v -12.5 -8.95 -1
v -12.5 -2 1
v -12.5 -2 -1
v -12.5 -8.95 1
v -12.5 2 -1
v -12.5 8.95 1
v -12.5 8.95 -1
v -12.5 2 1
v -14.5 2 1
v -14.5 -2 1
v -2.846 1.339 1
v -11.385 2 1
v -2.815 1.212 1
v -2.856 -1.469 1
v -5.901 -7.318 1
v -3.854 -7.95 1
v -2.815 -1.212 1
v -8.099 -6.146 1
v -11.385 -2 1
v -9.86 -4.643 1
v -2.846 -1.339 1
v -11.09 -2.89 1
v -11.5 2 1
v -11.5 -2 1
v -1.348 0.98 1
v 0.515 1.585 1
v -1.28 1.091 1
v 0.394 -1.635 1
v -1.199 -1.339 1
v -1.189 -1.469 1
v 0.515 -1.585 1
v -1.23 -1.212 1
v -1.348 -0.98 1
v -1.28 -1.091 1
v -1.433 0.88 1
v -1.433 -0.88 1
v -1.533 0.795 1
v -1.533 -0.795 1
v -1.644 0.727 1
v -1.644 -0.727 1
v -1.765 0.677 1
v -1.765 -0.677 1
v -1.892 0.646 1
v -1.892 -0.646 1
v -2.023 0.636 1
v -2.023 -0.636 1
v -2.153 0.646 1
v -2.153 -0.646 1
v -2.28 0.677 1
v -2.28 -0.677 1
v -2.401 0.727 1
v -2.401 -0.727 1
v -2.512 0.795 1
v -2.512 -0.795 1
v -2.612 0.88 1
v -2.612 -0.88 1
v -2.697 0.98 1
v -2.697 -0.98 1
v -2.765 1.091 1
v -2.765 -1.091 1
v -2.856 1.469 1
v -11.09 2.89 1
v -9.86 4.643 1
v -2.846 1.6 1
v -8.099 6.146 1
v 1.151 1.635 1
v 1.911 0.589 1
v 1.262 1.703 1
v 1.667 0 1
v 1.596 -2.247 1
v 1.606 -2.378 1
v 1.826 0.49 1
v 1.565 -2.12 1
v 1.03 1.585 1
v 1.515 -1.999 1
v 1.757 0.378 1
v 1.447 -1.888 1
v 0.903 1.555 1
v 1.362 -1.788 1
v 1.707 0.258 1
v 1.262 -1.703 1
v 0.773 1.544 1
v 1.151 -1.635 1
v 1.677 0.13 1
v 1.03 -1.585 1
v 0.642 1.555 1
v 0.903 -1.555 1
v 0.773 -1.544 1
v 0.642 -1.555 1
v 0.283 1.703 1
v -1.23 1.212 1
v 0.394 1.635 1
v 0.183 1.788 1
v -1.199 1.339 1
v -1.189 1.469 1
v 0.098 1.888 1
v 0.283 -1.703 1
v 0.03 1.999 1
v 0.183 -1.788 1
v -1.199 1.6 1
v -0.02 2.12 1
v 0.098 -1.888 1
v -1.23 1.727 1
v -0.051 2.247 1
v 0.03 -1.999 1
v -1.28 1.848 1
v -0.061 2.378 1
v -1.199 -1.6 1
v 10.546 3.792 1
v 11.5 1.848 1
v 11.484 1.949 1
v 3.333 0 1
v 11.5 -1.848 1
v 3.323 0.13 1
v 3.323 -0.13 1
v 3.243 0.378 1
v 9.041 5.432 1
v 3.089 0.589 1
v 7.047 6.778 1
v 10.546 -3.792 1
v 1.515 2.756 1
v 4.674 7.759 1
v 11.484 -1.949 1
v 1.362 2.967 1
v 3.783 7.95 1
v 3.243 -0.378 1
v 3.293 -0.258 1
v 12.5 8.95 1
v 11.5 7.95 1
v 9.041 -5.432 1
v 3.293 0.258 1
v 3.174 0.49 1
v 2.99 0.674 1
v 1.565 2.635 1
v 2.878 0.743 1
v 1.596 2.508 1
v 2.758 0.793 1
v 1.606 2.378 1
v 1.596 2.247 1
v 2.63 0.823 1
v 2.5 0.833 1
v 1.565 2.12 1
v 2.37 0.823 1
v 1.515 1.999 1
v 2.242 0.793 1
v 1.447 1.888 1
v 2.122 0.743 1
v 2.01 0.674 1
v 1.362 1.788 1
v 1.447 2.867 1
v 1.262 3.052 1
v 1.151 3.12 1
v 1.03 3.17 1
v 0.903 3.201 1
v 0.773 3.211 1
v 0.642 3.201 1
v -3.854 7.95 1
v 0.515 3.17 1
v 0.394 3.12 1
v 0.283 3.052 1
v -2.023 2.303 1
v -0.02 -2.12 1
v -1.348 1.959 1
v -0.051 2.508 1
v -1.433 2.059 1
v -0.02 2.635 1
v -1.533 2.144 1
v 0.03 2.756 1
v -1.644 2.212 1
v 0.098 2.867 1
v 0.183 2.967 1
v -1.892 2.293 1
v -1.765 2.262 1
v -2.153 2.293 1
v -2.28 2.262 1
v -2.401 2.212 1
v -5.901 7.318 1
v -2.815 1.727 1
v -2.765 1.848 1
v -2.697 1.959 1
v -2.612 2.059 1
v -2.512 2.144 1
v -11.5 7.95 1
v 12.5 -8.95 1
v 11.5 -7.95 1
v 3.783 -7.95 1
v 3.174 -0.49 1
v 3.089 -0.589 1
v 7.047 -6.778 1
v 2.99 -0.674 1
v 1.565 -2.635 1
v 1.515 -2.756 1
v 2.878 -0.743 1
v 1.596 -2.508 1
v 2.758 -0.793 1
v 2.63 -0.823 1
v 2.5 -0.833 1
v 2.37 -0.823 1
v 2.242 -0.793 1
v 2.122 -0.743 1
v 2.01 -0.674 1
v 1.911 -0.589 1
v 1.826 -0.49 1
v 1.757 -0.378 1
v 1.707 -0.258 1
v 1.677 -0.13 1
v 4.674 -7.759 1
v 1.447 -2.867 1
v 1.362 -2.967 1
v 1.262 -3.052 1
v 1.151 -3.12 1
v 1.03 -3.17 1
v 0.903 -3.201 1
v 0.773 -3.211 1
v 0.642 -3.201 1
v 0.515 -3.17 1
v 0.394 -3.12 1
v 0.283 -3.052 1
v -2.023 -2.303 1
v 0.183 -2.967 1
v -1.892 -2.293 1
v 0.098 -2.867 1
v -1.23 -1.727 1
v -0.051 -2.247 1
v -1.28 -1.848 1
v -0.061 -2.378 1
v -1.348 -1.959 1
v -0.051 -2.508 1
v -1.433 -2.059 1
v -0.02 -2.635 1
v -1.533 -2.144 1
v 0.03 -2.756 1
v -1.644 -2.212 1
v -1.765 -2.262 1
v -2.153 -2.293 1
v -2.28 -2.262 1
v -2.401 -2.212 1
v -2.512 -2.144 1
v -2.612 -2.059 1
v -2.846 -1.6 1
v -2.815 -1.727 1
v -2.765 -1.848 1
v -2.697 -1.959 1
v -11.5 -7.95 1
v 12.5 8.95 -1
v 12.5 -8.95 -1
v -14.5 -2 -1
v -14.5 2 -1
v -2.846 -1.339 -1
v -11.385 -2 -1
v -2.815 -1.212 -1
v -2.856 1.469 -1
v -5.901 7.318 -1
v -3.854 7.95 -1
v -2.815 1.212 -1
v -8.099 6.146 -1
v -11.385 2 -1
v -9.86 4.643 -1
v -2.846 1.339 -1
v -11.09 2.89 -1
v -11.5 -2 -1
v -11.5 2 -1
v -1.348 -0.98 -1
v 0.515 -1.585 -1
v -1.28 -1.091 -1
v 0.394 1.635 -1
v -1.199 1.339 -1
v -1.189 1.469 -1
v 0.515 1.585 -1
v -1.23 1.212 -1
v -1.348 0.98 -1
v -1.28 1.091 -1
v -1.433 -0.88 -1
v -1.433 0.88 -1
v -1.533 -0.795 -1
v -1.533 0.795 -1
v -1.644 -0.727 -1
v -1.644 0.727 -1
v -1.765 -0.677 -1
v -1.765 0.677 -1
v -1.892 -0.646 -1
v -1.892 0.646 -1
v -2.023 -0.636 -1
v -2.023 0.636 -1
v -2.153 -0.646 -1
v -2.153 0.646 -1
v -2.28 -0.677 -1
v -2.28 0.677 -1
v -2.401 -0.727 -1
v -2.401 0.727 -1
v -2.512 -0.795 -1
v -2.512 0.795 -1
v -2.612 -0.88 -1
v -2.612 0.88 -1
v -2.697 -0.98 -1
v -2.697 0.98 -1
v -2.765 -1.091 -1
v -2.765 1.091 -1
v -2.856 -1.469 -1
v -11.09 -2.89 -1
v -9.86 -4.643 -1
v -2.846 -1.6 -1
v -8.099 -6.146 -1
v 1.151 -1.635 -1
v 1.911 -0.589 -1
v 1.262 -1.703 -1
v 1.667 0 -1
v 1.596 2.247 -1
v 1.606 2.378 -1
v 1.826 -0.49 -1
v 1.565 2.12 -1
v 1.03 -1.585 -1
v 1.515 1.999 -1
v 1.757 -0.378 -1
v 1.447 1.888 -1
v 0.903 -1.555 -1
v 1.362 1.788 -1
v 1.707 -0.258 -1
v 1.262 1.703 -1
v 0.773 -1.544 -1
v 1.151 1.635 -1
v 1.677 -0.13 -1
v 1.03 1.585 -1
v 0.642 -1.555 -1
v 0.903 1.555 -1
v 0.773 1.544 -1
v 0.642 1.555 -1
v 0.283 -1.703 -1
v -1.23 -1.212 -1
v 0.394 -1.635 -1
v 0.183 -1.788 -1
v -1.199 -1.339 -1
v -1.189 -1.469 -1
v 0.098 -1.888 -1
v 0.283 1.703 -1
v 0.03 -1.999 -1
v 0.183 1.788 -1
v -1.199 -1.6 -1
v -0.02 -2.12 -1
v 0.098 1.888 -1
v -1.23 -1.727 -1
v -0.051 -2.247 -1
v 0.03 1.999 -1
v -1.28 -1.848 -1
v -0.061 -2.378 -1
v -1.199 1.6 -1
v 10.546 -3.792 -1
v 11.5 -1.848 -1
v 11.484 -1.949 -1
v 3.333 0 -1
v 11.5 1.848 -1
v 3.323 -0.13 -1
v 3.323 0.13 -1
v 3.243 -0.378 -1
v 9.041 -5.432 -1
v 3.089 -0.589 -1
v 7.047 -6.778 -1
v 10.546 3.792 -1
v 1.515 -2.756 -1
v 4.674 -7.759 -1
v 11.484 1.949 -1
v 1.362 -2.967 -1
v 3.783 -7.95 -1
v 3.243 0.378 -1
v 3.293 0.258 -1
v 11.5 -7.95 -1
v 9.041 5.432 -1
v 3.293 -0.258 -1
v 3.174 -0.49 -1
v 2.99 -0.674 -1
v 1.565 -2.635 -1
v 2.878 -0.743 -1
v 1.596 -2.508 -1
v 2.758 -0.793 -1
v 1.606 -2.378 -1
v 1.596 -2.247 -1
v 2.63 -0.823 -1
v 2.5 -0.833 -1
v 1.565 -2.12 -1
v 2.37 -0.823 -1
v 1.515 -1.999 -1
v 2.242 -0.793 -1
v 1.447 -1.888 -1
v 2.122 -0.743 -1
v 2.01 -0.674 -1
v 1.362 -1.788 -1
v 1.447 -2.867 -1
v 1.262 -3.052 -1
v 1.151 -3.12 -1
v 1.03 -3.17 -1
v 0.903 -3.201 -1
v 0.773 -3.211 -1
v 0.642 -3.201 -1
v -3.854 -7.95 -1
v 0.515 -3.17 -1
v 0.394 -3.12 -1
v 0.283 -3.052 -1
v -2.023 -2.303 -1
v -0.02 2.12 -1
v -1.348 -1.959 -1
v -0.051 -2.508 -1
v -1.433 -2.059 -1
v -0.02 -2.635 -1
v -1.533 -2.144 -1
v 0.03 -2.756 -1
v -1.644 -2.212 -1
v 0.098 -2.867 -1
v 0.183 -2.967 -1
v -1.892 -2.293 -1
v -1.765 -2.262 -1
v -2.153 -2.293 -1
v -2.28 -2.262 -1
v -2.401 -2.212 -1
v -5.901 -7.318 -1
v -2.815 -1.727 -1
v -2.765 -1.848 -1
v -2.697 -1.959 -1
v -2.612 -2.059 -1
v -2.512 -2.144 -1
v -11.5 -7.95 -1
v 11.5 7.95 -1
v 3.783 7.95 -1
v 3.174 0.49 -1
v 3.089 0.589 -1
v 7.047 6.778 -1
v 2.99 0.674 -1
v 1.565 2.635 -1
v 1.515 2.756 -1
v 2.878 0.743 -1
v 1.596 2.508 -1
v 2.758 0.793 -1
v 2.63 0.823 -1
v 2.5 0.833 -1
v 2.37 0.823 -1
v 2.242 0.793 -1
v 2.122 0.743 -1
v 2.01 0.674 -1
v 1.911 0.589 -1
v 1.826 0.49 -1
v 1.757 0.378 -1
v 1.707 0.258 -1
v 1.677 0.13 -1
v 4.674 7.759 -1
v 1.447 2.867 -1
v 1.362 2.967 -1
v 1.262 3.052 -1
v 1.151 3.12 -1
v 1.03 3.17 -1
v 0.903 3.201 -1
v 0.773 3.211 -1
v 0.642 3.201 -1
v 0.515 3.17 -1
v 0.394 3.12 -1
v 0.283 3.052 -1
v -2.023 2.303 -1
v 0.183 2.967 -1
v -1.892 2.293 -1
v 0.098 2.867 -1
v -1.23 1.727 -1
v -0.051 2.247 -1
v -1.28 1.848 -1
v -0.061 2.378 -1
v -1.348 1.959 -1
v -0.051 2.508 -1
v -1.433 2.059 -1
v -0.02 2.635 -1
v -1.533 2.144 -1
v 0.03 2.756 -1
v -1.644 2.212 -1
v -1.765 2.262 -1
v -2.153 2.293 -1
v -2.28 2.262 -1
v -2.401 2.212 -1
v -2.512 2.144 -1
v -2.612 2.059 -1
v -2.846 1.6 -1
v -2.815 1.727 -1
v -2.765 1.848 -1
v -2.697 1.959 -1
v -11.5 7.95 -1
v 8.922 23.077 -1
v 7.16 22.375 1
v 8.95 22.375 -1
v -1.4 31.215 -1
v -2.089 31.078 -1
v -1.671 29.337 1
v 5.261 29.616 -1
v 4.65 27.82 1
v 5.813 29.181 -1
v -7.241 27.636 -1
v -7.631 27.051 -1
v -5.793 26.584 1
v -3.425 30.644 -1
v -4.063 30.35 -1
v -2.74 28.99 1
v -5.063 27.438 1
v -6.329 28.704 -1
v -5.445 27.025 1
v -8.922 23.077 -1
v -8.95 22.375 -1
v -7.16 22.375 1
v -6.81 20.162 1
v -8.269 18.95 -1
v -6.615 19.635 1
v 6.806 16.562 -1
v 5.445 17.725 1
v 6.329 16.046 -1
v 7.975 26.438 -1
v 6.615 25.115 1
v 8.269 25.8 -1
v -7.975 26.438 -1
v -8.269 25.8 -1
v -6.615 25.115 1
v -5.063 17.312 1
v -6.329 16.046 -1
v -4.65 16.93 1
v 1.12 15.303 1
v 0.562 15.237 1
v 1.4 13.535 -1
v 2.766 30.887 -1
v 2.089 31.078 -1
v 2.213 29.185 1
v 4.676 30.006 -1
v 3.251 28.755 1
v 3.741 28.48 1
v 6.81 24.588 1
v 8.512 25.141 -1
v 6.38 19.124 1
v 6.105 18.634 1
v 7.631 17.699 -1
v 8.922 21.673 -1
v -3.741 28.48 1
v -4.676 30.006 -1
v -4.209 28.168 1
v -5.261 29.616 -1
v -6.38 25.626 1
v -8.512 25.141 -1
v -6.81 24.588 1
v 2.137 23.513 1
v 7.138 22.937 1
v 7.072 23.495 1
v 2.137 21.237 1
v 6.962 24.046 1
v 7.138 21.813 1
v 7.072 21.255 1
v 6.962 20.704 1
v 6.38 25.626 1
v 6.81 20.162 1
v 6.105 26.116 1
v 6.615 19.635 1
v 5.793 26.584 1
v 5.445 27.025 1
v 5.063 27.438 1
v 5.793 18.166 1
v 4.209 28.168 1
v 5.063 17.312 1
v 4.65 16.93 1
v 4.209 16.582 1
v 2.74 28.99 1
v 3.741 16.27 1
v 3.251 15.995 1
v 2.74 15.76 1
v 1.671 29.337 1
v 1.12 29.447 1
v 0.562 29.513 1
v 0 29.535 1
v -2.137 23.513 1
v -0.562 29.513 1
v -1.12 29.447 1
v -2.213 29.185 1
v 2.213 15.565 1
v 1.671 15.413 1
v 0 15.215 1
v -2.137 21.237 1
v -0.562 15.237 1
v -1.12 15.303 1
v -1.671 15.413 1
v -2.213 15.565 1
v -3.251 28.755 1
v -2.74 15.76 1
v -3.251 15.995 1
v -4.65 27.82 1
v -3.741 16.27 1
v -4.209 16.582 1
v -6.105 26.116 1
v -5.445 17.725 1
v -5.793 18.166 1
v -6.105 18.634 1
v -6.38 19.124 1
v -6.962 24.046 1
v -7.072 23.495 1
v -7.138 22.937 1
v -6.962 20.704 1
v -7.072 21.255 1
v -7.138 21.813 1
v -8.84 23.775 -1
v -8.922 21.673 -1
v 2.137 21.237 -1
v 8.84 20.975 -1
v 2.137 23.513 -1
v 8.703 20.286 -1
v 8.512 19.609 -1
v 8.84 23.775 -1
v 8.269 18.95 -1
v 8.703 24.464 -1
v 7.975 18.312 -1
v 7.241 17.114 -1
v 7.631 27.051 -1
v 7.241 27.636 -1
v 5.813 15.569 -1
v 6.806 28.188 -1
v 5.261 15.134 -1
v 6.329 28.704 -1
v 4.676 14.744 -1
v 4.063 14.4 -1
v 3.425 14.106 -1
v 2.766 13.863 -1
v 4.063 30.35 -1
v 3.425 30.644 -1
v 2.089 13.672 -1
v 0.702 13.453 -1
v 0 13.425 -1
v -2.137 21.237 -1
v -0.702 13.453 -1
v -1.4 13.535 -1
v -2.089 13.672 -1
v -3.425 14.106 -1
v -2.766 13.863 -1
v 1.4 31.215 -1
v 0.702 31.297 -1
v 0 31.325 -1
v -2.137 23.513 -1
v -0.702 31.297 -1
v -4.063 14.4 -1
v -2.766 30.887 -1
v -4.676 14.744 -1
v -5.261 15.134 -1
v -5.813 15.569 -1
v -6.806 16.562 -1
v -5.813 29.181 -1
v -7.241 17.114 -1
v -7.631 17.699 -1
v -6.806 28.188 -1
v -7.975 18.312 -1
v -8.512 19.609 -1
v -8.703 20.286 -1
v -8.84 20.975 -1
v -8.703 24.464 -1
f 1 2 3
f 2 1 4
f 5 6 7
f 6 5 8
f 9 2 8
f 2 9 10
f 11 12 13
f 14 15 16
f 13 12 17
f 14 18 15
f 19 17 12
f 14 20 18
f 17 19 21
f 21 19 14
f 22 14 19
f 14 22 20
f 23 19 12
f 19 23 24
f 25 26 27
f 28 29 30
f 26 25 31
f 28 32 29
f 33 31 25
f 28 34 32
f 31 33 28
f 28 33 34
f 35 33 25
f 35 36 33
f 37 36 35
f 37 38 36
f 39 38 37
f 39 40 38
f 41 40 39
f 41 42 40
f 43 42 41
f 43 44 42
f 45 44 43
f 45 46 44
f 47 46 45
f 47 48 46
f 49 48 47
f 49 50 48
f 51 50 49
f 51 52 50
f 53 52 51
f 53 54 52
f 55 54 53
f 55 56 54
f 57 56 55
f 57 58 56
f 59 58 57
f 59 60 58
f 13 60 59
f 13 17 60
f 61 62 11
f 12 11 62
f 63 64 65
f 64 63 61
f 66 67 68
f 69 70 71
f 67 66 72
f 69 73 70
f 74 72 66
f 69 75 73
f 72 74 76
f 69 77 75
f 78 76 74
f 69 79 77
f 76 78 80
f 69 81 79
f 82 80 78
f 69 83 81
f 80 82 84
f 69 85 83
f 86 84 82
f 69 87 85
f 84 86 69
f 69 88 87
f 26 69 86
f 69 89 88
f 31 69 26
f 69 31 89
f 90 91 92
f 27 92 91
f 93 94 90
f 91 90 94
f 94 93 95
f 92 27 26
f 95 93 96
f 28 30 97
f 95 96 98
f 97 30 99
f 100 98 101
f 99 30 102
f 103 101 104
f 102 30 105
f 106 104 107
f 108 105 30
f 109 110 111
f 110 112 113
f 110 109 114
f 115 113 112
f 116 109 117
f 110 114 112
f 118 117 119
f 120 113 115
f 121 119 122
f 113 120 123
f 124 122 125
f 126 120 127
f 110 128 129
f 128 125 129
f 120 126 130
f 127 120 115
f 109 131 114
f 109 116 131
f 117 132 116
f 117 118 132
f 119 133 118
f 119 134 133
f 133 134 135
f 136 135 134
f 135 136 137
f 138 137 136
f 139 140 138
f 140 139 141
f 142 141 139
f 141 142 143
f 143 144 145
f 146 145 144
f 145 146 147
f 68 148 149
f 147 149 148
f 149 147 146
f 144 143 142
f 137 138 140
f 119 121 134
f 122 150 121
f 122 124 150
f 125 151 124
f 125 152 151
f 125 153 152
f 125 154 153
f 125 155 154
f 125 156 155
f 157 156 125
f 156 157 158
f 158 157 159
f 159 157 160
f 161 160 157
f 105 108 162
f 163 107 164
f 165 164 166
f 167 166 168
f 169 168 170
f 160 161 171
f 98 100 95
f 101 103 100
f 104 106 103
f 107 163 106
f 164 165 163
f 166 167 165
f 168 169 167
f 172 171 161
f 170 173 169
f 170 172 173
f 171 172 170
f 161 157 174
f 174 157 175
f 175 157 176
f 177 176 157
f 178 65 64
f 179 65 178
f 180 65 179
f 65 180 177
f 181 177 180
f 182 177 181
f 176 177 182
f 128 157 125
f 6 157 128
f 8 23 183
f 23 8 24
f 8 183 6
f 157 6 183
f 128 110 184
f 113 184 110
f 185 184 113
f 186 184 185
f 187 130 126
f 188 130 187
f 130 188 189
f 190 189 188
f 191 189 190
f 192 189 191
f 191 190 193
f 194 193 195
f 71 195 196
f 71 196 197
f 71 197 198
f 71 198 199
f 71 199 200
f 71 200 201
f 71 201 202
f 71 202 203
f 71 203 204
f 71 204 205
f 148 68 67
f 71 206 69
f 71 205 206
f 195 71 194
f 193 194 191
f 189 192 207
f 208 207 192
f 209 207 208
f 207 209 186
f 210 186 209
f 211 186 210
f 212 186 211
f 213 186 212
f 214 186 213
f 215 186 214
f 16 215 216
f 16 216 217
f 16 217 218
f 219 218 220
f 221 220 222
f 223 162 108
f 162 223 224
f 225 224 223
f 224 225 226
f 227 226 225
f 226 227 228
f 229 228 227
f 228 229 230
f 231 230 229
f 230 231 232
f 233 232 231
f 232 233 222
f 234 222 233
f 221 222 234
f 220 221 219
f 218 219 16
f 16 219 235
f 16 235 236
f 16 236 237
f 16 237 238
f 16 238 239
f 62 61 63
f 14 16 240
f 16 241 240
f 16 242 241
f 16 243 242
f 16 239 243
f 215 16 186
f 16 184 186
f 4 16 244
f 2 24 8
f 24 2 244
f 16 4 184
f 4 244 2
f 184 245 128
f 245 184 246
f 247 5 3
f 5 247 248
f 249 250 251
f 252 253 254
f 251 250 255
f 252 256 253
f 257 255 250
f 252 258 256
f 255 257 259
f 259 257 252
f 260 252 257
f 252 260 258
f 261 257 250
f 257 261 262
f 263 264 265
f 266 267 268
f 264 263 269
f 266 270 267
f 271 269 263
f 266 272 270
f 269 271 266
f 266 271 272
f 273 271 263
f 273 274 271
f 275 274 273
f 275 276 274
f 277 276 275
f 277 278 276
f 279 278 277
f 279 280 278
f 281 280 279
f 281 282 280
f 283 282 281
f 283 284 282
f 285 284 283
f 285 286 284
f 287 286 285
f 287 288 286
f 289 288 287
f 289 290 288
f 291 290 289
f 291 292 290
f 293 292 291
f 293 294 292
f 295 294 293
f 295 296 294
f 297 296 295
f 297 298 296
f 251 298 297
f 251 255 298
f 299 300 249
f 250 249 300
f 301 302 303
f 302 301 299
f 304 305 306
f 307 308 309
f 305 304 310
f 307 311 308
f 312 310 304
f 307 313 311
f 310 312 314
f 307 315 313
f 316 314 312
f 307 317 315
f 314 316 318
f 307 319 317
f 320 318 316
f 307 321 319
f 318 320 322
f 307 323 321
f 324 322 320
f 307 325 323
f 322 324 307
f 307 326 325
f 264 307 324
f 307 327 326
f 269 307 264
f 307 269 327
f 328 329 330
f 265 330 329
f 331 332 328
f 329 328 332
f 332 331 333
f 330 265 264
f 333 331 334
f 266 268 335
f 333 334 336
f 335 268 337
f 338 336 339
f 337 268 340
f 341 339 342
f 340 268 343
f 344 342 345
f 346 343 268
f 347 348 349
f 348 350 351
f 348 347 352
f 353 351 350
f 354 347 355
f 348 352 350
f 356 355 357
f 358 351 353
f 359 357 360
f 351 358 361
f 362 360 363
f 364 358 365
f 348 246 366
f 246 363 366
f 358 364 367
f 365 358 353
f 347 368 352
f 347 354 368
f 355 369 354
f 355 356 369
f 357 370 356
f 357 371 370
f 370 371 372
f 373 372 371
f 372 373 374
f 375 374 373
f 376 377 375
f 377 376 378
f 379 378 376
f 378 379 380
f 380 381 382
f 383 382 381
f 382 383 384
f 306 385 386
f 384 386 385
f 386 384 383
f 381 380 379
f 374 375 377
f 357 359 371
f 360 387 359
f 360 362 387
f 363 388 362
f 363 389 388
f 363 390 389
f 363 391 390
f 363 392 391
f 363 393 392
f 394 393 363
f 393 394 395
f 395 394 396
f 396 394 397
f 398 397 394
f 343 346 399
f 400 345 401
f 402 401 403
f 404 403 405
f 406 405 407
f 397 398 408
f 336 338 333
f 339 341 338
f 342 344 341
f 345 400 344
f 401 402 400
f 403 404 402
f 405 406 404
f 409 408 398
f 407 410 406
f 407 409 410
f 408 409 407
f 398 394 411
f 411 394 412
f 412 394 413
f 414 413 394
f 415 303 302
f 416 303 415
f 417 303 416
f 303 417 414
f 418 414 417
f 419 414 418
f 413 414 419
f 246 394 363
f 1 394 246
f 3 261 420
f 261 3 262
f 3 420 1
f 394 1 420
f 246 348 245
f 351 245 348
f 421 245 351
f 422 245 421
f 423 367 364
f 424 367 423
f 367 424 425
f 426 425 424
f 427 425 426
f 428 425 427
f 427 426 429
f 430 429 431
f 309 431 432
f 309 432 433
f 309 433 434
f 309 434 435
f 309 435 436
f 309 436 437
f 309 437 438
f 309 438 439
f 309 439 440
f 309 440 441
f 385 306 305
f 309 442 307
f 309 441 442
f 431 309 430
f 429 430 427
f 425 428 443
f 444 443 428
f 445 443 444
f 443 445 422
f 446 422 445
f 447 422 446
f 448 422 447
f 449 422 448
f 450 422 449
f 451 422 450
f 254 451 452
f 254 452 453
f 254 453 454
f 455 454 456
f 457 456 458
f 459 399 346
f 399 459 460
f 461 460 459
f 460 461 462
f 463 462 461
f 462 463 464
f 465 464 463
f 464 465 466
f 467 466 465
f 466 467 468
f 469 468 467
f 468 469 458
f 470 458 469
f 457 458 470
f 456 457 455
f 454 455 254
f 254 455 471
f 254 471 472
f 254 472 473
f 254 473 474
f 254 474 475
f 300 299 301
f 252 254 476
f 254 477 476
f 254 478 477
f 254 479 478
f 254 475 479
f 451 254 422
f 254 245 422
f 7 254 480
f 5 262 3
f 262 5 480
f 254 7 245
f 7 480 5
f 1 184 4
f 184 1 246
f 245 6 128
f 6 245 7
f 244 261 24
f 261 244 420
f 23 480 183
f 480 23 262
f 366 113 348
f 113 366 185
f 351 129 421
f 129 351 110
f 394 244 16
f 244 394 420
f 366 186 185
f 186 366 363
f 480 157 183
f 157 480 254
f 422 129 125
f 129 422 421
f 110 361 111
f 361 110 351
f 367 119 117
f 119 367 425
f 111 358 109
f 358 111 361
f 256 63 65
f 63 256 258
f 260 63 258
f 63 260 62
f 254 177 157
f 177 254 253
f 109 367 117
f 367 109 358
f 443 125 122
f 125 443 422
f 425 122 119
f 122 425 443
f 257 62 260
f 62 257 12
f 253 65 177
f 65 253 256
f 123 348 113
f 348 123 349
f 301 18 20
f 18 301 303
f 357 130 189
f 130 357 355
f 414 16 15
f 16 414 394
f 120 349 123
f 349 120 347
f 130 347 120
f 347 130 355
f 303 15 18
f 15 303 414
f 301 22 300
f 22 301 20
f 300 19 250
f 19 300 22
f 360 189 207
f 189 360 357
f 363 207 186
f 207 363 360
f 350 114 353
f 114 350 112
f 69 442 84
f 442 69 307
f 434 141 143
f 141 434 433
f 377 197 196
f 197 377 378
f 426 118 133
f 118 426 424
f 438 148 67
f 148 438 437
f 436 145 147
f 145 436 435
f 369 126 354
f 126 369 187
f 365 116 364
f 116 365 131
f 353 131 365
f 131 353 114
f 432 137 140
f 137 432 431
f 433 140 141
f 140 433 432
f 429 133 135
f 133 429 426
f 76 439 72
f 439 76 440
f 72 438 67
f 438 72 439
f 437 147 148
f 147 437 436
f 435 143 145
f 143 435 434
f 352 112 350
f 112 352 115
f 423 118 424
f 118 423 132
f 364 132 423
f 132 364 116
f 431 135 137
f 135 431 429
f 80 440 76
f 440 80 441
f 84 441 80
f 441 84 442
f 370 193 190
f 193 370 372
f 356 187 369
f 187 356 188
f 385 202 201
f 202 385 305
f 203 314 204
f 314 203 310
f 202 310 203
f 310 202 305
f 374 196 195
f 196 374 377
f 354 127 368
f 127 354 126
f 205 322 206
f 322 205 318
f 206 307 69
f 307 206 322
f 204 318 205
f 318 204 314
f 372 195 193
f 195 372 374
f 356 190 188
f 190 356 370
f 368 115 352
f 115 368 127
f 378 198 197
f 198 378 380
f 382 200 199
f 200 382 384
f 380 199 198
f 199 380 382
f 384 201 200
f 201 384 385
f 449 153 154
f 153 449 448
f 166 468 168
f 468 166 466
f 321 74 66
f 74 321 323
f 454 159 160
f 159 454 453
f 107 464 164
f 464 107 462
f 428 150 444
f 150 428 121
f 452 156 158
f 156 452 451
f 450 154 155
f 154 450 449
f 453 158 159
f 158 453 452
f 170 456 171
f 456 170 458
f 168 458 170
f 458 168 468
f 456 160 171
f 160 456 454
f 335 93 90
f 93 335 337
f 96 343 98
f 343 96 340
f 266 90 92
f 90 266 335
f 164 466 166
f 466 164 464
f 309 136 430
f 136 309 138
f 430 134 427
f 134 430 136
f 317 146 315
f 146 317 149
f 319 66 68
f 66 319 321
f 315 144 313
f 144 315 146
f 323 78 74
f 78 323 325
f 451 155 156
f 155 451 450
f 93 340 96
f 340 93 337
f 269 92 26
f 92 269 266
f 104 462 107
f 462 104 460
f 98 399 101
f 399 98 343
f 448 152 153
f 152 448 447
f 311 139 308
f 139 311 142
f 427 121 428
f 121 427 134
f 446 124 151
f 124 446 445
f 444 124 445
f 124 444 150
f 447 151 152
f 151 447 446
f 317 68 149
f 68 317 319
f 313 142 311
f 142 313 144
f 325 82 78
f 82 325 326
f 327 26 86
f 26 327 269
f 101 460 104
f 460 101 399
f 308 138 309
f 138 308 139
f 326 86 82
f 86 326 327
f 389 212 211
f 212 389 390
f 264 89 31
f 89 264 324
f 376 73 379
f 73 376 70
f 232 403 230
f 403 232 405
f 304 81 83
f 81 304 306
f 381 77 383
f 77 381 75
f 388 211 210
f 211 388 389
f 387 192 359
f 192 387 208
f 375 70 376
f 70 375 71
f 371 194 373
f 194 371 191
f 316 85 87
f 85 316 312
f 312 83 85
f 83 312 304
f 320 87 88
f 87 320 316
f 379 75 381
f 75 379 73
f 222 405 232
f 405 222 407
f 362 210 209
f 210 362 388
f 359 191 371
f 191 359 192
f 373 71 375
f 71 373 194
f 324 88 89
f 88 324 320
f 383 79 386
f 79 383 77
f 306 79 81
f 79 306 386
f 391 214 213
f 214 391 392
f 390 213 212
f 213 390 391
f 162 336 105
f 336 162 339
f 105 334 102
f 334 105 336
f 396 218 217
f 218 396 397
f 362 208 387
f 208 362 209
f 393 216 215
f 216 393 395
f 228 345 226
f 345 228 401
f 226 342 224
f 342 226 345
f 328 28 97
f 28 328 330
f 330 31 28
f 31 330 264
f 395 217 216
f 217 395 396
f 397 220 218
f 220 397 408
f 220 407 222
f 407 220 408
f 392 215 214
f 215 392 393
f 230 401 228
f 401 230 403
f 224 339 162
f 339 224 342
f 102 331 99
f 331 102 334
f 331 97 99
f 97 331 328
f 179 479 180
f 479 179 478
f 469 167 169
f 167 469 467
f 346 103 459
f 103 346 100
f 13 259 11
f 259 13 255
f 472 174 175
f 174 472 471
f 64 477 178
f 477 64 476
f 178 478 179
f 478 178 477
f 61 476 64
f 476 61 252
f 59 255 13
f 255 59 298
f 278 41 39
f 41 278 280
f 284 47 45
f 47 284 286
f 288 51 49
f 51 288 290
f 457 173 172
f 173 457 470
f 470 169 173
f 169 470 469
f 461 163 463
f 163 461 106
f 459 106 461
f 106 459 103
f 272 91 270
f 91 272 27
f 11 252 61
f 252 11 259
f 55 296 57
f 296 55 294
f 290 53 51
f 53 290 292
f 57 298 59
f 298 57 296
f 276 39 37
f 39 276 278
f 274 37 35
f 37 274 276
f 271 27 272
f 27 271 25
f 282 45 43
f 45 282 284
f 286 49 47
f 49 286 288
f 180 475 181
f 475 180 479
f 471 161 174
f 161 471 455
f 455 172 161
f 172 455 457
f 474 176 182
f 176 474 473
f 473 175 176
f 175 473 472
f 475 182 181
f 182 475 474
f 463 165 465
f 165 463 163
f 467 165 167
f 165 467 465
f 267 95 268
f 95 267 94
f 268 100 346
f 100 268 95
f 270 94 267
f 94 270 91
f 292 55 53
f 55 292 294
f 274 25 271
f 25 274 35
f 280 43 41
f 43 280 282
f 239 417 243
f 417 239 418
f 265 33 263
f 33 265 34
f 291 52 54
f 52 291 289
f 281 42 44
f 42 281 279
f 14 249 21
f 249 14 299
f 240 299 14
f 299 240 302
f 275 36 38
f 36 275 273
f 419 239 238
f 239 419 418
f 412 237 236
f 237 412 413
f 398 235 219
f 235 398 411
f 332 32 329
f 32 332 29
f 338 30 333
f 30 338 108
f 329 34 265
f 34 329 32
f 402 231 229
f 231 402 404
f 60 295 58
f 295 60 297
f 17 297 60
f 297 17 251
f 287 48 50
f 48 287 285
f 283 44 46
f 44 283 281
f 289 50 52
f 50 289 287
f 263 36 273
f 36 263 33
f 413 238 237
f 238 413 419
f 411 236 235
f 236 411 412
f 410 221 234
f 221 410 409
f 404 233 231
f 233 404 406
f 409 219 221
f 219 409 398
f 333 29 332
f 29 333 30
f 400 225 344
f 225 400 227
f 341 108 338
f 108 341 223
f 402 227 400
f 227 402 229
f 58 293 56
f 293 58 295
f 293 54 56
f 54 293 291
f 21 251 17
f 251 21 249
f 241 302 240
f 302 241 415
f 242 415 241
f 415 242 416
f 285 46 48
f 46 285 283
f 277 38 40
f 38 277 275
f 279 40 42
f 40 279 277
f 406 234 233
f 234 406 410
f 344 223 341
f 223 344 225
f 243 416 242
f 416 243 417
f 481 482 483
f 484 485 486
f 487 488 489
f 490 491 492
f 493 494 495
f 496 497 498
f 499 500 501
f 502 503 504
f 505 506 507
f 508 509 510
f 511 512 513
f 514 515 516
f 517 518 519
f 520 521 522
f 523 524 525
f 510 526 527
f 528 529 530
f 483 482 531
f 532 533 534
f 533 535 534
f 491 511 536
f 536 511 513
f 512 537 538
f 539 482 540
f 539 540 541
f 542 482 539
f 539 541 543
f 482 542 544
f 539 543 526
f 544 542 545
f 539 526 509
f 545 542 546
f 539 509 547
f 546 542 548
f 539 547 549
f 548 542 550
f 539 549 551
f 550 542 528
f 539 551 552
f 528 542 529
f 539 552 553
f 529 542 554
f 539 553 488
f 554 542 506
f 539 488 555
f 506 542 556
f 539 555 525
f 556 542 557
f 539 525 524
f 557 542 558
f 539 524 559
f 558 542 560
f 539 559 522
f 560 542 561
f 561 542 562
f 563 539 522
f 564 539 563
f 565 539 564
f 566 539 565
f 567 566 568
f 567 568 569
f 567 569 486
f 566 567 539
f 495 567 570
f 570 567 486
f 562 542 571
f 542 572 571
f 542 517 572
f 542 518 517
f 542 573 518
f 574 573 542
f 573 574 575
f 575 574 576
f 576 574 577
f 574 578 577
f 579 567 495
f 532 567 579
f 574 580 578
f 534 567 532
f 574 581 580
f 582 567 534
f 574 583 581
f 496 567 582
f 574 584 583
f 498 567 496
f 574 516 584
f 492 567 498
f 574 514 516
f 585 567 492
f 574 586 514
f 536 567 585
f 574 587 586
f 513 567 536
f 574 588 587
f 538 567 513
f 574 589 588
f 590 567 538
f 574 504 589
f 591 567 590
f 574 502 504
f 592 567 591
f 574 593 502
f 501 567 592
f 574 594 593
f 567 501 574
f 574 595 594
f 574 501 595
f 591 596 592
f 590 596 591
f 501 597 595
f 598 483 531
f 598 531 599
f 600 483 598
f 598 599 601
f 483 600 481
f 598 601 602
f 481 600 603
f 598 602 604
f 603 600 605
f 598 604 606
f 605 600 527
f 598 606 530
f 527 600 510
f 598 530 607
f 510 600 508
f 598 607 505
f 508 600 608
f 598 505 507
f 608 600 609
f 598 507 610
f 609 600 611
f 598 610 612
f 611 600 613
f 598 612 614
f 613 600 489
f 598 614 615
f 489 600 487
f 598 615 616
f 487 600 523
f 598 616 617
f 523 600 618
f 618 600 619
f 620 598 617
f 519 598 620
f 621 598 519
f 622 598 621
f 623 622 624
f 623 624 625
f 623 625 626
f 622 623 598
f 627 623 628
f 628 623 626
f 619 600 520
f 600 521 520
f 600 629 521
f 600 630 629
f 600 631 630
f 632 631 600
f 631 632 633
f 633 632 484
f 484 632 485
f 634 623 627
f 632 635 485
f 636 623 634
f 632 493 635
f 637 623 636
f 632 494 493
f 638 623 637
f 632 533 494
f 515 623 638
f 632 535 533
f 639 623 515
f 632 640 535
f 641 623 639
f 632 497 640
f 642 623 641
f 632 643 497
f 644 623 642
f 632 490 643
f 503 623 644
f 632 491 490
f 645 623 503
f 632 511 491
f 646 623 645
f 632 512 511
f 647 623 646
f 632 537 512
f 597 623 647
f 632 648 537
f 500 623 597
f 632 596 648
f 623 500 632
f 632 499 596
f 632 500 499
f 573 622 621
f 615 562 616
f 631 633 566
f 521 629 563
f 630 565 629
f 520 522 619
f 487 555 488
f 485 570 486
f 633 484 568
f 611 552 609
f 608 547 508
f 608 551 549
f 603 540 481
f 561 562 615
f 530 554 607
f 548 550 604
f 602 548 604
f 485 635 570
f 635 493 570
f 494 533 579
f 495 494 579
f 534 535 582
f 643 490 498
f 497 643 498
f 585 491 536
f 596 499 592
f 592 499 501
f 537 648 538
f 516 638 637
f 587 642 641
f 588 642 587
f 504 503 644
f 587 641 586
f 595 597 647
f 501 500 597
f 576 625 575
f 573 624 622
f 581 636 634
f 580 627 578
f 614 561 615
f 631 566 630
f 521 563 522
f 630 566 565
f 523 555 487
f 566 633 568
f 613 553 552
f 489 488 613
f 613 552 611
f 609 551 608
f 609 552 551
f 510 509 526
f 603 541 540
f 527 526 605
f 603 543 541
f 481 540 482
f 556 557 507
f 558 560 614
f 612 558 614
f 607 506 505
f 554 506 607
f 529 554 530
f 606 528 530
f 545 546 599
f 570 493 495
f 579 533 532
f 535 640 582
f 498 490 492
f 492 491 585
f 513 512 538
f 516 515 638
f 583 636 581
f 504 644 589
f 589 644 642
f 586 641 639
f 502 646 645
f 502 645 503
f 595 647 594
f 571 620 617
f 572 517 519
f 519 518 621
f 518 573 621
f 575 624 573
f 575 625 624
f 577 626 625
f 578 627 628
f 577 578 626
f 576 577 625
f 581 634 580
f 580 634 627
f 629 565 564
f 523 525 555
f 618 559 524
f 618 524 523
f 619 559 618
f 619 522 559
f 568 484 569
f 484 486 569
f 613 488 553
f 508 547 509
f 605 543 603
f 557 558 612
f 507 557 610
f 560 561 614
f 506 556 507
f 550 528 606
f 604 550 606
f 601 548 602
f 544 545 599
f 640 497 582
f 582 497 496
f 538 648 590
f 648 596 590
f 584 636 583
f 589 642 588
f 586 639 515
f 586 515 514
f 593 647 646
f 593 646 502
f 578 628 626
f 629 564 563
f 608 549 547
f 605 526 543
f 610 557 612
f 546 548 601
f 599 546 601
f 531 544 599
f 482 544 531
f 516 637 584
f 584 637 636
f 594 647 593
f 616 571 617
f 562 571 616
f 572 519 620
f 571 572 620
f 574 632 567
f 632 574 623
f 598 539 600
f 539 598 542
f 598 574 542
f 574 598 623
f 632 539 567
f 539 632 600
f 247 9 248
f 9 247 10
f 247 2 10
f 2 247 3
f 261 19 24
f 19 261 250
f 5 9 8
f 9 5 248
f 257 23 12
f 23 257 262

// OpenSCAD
height = 25;
width = height*0.716;
thickness = 2;

module card(height, width, thickness) {
    wall=2;
    difference() {
    union() {
        difference() {
            cube([height, width, thickness], center=true);
            cube([height-wall, width-wall, thickness+1], center=true);
        }
        scale([1/0.716,1,1]) cylinder(h=thickness, r=width/2-0.5, center=true);
    }
    union() {
        translate([height/10, 0,0]) cylinder(h=thickness+1, r=height/30, $fn=40, center=true);
        rotate(72) translate([height/10, 0,0]) cylinder(h=thickness+1, r=height/30, $fn=40, center=true);
        rotate(-72) translate([height/10, 0,0]) cylinder(h=thickness+1, r=height/30, $fn=40, center=true);
        rotate(72*2) translate([height/10, 0,0]) cylinder(h=thickness+1, r=height/30, $fn=40, center=true);
        rotate (72*3) translate([height/10, 0,0]) cylinder(h=thickness+1, r=height/30, $fn=40, center=true);
    }
}
}


module base(width, thickness) {
    difference() {
        cylinder(h=thickness, r1=width/2, r2=width*0.8/2, center=true, $fn=80);
        cube([4.275,2.275,width+1],center=true);    }
}

wall = 2;

card(height, width, thickness);
translate([-height/2,0,]) cube([4,4,thickness],center=true);


translate([0,width*1.25,0]) base(width, thickness);
